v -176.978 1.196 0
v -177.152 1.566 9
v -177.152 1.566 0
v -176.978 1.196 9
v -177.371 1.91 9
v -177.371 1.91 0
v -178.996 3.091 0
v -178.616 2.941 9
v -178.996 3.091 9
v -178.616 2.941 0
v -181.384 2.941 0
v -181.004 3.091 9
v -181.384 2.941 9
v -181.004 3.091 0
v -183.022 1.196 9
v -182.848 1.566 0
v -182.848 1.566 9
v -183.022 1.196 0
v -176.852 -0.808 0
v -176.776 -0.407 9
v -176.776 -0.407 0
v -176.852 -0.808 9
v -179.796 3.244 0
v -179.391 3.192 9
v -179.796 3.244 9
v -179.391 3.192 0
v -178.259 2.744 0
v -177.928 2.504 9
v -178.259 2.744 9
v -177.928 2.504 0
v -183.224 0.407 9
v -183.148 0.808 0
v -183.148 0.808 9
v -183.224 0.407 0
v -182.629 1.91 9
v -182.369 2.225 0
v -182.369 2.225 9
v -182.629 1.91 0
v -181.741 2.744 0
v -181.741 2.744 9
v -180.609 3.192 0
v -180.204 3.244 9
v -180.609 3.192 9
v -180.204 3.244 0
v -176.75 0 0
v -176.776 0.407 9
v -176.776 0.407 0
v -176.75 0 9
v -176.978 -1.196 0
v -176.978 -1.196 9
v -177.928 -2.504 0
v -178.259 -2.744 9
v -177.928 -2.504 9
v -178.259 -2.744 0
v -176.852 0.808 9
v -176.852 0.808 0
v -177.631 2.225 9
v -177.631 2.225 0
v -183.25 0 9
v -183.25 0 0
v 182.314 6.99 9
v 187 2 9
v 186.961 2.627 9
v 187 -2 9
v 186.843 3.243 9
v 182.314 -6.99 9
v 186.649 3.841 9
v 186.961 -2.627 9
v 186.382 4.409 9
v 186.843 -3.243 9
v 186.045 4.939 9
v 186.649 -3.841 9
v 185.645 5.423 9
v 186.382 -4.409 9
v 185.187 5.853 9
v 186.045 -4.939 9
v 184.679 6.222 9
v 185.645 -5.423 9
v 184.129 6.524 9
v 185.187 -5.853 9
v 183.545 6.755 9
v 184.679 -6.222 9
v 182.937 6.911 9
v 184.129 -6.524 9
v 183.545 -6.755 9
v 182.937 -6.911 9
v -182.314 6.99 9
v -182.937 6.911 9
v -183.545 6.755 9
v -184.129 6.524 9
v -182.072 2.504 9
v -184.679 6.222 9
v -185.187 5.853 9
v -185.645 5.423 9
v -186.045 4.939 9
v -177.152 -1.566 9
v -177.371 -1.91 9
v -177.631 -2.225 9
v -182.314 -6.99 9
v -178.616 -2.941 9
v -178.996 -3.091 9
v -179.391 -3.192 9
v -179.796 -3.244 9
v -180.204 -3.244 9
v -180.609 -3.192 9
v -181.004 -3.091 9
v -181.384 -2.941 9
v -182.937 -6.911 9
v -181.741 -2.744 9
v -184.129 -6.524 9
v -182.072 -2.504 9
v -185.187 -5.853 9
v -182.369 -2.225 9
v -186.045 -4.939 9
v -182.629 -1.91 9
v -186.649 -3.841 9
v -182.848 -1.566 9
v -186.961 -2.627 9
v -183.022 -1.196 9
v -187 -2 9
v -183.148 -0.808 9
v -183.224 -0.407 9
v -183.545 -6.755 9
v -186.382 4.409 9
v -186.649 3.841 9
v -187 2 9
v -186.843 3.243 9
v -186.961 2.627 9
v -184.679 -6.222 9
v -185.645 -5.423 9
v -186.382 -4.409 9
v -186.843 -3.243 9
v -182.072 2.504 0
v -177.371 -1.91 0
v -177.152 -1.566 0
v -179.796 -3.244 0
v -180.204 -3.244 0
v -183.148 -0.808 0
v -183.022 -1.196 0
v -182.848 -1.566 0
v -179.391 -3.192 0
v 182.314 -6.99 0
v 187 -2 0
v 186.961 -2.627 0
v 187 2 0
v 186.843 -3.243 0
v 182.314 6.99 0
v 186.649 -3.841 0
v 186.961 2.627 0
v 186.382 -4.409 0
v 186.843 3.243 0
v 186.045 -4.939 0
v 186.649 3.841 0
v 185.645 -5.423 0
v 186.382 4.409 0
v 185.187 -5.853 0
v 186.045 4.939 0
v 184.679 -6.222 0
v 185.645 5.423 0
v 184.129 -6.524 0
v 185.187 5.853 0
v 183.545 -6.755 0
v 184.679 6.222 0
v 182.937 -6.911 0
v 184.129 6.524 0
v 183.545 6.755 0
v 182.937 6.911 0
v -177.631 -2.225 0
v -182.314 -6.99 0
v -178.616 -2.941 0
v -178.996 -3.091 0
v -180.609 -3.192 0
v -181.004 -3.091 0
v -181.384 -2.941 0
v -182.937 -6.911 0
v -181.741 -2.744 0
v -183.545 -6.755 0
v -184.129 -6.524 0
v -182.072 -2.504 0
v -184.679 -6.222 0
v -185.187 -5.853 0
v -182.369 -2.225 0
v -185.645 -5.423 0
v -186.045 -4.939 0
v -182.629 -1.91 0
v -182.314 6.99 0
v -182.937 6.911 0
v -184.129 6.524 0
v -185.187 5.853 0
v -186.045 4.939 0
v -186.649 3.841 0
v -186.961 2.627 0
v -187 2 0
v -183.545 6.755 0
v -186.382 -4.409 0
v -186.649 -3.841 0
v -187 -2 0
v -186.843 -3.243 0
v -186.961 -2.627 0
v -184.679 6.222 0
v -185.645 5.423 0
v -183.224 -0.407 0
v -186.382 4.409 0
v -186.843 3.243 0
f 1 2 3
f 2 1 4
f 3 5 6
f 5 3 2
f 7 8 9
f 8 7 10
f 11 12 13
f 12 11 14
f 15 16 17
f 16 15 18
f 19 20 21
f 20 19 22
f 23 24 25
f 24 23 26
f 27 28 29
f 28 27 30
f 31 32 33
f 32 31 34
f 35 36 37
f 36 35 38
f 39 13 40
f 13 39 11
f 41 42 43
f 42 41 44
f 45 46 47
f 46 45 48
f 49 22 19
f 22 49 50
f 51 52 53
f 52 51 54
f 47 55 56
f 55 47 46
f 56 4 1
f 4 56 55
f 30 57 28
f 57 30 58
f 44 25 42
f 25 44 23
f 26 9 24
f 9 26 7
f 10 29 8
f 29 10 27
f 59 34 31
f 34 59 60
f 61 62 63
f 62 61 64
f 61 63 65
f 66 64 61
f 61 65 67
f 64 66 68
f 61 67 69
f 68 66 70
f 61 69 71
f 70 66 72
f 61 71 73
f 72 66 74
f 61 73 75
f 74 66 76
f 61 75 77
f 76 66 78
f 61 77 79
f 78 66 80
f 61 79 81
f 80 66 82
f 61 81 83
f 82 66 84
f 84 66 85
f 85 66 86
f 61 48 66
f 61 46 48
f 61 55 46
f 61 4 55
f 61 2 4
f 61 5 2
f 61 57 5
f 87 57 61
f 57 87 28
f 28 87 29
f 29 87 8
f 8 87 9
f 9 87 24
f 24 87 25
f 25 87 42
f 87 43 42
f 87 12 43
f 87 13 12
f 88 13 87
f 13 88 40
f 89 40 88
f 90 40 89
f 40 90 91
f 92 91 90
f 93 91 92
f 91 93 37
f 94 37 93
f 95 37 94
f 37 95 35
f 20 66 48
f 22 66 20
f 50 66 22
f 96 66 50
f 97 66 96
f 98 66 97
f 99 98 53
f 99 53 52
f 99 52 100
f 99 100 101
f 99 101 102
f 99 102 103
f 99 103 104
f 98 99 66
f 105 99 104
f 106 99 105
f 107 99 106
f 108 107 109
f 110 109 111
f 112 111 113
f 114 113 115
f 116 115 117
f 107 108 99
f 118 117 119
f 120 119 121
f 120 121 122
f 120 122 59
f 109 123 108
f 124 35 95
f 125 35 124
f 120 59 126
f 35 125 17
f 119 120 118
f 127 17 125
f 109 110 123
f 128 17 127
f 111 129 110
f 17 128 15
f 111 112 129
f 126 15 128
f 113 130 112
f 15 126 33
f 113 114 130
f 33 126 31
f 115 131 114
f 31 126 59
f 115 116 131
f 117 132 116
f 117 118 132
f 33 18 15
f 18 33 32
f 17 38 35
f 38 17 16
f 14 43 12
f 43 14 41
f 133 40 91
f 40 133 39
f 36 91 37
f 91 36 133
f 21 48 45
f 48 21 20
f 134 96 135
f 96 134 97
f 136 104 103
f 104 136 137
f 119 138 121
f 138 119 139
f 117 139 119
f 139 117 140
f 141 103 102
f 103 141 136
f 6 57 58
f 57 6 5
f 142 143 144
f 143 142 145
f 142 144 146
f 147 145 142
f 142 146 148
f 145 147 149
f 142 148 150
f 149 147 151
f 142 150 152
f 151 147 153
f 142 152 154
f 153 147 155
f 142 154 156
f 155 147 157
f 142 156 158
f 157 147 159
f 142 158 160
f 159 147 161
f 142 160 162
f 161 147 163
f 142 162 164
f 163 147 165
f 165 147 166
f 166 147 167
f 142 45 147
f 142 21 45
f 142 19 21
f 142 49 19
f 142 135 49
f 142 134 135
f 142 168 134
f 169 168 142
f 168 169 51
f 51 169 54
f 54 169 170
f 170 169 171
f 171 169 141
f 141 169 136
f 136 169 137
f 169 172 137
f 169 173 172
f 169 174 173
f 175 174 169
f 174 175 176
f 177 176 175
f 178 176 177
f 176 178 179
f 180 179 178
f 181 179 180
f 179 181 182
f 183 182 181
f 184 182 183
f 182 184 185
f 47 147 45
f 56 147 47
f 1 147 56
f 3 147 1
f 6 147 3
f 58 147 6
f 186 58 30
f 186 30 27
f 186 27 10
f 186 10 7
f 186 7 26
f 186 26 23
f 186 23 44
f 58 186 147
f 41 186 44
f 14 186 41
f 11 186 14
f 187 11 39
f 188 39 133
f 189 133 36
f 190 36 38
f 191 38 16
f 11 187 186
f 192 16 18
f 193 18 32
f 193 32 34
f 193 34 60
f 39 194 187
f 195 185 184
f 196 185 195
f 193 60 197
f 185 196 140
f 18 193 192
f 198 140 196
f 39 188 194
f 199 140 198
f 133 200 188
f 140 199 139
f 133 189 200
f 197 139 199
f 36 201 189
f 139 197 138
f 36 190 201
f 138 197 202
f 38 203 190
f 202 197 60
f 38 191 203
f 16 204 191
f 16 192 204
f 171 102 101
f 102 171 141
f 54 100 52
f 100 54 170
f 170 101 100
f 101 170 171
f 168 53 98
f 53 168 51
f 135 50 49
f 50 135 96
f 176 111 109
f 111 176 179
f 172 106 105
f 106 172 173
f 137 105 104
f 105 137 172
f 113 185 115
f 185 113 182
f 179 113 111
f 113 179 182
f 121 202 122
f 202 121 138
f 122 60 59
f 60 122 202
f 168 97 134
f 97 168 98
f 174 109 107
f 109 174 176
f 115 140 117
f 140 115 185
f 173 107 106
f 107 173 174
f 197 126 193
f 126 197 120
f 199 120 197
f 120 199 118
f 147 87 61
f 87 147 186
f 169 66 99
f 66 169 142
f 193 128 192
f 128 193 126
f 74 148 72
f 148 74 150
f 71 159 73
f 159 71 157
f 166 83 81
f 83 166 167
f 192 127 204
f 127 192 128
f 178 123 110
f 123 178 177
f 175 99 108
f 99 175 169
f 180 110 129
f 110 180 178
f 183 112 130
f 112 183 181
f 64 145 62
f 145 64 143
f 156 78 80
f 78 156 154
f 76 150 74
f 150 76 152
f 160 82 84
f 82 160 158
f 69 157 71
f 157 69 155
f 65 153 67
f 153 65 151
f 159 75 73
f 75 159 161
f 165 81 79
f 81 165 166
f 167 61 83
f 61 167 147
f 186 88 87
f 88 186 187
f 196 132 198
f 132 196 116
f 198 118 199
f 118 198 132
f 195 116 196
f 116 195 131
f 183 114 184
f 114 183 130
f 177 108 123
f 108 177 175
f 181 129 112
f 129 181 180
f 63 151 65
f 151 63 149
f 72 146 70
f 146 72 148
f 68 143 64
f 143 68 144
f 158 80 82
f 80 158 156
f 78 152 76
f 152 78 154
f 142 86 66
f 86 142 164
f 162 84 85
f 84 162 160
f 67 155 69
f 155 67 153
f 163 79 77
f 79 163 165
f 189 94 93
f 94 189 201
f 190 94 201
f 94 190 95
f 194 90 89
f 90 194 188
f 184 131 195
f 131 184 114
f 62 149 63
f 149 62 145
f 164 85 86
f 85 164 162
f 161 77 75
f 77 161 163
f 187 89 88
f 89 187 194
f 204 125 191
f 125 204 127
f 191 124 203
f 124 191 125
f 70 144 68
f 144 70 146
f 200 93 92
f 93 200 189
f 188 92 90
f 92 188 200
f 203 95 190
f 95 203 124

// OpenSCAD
$fn = 50;


difference() {
	union() {
		hull() {
			translate(v = [-182.0000000000, 2.0000000000, 0]) {
				cylinder(h = 9, r = 5);
			}
			translate(v = [182.0000000000, 2.0000000000, 0]) {
				cylinder(h = 9, r = 5);
			}
			translate(v = [-182.0000000000, -2.0000000000, 0]) {
				cylinder(h = 9, r = 5);
			}
			translate(v = [182.0000000000, -2.0000000000, 0]) {
				cylinder(h = 9, r = 5);
			}
		}
	}
	union() {
		translate(v = [-180.0000000000, 0.0000000000, 0]) {
			cylinder(h = 9, r = 3.2500000000);
		}
		translate(v = [-180.0000000000, 0.0000000000, 0]) {
			cylinder(h = 9, r = 1.8000000000);
		}
		translate(v = [-180.0000000000, 0.0000000000, 0]) {
			cylinder(h = 9, r = 1.8000000000);
		}
		translate(v = [-180.0000000000, 0.0000000000, 0]) {
			cylinder(h = 9, r = 1.8000000000);
		}
	}
}
